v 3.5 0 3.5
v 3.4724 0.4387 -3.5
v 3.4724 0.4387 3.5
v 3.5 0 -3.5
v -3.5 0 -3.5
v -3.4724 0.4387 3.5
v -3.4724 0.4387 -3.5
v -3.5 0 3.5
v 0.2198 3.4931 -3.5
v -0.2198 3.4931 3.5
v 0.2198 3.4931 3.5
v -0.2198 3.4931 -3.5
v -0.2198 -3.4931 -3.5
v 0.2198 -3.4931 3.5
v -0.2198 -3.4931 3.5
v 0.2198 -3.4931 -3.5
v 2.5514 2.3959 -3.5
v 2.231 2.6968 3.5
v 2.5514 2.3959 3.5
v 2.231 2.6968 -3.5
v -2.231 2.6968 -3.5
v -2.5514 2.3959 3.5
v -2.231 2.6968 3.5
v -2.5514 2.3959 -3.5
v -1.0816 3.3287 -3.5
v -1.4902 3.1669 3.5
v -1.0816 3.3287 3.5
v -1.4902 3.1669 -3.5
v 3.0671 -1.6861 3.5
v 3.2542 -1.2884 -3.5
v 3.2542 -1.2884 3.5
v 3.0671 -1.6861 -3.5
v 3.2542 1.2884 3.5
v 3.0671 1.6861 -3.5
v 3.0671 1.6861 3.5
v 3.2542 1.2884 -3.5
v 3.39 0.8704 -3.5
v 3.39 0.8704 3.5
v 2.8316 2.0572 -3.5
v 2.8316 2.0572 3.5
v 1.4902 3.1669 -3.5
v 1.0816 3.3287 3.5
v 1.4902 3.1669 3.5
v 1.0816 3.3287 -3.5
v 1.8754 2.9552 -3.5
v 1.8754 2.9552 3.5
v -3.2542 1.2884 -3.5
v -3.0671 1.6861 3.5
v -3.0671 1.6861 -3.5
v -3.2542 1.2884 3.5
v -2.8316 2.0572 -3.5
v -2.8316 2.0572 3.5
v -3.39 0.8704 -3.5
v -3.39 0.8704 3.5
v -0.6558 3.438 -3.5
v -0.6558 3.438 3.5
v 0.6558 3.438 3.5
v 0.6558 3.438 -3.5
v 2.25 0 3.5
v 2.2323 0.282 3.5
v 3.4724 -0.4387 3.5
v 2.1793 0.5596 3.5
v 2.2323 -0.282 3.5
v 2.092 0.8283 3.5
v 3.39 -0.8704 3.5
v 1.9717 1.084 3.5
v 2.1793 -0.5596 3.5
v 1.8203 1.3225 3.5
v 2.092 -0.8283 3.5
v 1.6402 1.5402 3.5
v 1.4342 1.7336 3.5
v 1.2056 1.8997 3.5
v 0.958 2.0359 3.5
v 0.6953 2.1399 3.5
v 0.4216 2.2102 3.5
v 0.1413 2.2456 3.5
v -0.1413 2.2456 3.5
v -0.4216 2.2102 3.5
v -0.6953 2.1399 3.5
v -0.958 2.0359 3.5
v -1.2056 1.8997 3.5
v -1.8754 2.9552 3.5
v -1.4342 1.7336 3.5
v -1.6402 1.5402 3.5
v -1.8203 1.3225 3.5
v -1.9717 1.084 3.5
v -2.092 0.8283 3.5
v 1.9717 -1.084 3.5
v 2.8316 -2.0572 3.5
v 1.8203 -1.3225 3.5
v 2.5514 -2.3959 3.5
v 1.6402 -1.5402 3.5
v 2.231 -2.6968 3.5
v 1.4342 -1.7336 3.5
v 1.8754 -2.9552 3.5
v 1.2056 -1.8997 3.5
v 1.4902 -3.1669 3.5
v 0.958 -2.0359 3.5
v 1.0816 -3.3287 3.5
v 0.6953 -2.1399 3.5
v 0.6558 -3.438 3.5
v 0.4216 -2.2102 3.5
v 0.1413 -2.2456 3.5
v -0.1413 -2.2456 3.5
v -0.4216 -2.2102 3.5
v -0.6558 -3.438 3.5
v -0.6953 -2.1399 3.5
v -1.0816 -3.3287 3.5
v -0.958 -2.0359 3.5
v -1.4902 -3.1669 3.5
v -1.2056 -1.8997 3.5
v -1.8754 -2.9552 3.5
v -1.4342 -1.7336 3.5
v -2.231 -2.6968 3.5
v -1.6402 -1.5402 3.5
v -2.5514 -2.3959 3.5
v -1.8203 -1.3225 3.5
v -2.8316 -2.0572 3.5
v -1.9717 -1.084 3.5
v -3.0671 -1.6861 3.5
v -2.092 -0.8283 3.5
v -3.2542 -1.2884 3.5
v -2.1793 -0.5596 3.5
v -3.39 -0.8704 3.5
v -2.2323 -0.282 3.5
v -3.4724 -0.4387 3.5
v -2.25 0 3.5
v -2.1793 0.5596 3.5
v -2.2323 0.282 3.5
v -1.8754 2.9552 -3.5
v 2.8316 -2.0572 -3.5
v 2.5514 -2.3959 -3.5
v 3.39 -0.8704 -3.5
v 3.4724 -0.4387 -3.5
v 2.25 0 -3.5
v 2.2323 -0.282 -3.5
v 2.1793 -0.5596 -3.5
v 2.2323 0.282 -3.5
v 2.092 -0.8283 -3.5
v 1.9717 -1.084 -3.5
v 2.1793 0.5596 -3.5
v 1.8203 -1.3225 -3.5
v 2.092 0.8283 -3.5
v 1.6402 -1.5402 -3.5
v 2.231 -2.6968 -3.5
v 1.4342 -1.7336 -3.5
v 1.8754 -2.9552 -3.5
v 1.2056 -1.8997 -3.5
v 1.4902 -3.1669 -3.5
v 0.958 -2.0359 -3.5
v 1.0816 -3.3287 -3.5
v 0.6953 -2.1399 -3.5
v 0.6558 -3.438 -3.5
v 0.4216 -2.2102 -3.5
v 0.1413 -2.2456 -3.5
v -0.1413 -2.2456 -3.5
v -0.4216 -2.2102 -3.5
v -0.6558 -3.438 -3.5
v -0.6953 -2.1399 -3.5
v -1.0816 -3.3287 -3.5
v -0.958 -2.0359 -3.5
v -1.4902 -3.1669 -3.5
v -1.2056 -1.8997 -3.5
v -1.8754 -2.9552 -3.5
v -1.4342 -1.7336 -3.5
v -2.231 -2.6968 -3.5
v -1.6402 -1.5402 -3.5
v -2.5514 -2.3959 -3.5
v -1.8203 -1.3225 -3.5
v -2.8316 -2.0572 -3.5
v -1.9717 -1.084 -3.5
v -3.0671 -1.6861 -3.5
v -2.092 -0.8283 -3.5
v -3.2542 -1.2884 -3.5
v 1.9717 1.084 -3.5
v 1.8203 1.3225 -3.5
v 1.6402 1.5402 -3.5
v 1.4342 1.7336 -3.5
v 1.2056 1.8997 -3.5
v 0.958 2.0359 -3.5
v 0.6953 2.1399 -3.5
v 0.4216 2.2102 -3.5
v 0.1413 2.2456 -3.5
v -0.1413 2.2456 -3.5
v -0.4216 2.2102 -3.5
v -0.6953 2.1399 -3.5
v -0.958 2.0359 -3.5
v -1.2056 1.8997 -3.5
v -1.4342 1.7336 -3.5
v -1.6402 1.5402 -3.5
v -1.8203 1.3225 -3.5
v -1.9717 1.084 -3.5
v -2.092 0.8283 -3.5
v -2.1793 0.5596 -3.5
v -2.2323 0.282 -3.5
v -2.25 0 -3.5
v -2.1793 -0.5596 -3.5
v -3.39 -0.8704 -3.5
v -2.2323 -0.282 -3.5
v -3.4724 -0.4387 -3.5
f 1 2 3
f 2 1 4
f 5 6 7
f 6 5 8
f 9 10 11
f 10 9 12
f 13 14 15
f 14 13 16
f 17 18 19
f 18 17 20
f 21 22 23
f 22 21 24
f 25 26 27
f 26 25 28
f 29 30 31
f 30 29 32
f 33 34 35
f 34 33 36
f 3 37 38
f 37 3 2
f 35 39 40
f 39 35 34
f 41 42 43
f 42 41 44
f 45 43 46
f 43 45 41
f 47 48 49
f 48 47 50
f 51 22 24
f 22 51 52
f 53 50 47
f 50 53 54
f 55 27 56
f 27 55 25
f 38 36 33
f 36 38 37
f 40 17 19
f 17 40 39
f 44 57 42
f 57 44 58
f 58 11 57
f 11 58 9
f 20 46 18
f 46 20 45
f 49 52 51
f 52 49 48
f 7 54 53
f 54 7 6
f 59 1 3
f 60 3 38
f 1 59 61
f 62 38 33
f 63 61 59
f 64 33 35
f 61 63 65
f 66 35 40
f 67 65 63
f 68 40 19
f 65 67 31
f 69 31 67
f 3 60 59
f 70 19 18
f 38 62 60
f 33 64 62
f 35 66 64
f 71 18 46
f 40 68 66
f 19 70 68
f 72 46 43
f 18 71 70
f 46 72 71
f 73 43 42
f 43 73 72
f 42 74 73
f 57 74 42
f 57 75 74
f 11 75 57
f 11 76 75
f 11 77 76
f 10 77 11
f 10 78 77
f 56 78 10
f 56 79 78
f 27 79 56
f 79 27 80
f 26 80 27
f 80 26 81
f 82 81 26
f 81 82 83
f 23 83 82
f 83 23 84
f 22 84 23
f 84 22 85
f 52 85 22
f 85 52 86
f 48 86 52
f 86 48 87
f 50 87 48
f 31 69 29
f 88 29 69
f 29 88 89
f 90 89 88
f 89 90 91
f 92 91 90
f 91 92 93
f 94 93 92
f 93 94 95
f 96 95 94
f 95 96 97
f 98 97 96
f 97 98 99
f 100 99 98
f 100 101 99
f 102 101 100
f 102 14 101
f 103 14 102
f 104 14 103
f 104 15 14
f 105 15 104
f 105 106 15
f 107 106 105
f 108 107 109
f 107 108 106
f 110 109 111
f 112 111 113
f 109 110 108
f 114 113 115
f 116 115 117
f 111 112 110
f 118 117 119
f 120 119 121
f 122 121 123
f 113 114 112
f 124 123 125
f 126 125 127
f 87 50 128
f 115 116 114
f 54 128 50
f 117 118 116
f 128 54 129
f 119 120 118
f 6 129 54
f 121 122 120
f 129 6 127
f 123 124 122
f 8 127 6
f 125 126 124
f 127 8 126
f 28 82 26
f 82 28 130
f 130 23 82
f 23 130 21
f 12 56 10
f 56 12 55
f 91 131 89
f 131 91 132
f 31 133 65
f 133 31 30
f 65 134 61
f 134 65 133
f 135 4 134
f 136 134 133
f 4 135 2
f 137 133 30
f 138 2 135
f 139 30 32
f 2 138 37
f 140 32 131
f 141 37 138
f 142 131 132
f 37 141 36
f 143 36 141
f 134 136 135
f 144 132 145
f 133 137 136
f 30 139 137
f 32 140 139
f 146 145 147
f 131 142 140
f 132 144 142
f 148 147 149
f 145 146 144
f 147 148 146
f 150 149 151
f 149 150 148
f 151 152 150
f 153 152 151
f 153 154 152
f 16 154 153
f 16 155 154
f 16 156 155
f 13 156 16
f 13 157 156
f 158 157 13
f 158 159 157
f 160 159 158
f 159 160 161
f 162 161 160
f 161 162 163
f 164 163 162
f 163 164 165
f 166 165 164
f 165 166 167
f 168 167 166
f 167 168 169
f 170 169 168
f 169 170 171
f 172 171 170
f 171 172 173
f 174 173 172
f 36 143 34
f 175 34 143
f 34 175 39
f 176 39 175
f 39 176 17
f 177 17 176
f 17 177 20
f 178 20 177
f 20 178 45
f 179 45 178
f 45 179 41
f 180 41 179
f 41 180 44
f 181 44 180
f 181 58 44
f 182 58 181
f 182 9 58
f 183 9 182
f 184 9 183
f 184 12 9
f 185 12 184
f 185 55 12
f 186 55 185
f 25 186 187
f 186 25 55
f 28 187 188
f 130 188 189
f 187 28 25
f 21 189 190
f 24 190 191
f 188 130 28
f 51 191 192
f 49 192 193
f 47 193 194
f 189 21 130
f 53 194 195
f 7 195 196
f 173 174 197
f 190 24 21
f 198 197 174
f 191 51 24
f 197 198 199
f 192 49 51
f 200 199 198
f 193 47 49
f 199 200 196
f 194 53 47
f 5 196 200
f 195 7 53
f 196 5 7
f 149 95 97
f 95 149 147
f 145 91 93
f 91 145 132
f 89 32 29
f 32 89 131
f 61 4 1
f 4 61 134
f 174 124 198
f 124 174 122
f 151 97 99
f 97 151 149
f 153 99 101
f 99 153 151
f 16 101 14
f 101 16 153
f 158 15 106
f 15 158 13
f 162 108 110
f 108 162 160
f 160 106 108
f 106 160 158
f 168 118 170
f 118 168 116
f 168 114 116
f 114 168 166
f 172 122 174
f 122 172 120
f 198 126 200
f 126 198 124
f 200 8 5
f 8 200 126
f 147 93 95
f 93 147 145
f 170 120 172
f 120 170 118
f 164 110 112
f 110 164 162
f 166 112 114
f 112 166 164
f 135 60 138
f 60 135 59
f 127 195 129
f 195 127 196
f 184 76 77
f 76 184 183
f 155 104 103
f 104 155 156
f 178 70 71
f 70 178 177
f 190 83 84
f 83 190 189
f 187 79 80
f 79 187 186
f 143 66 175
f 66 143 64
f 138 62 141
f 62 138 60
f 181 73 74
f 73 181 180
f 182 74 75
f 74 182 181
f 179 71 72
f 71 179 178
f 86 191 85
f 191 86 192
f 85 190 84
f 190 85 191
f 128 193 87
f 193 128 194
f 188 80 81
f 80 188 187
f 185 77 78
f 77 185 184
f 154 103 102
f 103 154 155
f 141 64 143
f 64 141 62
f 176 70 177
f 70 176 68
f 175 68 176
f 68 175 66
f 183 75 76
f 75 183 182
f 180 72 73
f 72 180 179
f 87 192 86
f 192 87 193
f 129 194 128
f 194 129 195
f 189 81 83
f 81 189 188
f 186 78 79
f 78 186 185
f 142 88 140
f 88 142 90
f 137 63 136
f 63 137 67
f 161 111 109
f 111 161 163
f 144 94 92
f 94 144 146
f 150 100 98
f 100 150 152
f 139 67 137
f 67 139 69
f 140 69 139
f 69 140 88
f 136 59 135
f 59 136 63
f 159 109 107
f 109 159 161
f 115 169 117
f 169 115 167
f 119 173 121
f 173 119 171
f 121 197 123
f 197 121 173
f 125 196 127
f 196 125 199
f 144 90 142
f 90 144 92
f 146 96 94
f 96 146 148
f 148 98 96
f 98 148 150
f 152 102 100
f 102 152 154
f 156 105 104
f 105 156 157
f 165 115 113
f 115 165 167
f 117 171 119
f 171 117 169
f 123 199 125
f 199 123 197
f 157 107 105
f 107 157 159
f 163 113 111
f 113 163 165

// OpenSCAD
$fn = 50;


difference() {
	union() {
		translate(v = [0, 0, -3.5000000000]) {
			cylinder(h = 7, r = 3.5000000000);
		}
	}
	union() {
		translate(v = [0, 0, -100.0000000000]) {
			cylinder(h = 200, r = 2.2500000000);
		}
	}
}
